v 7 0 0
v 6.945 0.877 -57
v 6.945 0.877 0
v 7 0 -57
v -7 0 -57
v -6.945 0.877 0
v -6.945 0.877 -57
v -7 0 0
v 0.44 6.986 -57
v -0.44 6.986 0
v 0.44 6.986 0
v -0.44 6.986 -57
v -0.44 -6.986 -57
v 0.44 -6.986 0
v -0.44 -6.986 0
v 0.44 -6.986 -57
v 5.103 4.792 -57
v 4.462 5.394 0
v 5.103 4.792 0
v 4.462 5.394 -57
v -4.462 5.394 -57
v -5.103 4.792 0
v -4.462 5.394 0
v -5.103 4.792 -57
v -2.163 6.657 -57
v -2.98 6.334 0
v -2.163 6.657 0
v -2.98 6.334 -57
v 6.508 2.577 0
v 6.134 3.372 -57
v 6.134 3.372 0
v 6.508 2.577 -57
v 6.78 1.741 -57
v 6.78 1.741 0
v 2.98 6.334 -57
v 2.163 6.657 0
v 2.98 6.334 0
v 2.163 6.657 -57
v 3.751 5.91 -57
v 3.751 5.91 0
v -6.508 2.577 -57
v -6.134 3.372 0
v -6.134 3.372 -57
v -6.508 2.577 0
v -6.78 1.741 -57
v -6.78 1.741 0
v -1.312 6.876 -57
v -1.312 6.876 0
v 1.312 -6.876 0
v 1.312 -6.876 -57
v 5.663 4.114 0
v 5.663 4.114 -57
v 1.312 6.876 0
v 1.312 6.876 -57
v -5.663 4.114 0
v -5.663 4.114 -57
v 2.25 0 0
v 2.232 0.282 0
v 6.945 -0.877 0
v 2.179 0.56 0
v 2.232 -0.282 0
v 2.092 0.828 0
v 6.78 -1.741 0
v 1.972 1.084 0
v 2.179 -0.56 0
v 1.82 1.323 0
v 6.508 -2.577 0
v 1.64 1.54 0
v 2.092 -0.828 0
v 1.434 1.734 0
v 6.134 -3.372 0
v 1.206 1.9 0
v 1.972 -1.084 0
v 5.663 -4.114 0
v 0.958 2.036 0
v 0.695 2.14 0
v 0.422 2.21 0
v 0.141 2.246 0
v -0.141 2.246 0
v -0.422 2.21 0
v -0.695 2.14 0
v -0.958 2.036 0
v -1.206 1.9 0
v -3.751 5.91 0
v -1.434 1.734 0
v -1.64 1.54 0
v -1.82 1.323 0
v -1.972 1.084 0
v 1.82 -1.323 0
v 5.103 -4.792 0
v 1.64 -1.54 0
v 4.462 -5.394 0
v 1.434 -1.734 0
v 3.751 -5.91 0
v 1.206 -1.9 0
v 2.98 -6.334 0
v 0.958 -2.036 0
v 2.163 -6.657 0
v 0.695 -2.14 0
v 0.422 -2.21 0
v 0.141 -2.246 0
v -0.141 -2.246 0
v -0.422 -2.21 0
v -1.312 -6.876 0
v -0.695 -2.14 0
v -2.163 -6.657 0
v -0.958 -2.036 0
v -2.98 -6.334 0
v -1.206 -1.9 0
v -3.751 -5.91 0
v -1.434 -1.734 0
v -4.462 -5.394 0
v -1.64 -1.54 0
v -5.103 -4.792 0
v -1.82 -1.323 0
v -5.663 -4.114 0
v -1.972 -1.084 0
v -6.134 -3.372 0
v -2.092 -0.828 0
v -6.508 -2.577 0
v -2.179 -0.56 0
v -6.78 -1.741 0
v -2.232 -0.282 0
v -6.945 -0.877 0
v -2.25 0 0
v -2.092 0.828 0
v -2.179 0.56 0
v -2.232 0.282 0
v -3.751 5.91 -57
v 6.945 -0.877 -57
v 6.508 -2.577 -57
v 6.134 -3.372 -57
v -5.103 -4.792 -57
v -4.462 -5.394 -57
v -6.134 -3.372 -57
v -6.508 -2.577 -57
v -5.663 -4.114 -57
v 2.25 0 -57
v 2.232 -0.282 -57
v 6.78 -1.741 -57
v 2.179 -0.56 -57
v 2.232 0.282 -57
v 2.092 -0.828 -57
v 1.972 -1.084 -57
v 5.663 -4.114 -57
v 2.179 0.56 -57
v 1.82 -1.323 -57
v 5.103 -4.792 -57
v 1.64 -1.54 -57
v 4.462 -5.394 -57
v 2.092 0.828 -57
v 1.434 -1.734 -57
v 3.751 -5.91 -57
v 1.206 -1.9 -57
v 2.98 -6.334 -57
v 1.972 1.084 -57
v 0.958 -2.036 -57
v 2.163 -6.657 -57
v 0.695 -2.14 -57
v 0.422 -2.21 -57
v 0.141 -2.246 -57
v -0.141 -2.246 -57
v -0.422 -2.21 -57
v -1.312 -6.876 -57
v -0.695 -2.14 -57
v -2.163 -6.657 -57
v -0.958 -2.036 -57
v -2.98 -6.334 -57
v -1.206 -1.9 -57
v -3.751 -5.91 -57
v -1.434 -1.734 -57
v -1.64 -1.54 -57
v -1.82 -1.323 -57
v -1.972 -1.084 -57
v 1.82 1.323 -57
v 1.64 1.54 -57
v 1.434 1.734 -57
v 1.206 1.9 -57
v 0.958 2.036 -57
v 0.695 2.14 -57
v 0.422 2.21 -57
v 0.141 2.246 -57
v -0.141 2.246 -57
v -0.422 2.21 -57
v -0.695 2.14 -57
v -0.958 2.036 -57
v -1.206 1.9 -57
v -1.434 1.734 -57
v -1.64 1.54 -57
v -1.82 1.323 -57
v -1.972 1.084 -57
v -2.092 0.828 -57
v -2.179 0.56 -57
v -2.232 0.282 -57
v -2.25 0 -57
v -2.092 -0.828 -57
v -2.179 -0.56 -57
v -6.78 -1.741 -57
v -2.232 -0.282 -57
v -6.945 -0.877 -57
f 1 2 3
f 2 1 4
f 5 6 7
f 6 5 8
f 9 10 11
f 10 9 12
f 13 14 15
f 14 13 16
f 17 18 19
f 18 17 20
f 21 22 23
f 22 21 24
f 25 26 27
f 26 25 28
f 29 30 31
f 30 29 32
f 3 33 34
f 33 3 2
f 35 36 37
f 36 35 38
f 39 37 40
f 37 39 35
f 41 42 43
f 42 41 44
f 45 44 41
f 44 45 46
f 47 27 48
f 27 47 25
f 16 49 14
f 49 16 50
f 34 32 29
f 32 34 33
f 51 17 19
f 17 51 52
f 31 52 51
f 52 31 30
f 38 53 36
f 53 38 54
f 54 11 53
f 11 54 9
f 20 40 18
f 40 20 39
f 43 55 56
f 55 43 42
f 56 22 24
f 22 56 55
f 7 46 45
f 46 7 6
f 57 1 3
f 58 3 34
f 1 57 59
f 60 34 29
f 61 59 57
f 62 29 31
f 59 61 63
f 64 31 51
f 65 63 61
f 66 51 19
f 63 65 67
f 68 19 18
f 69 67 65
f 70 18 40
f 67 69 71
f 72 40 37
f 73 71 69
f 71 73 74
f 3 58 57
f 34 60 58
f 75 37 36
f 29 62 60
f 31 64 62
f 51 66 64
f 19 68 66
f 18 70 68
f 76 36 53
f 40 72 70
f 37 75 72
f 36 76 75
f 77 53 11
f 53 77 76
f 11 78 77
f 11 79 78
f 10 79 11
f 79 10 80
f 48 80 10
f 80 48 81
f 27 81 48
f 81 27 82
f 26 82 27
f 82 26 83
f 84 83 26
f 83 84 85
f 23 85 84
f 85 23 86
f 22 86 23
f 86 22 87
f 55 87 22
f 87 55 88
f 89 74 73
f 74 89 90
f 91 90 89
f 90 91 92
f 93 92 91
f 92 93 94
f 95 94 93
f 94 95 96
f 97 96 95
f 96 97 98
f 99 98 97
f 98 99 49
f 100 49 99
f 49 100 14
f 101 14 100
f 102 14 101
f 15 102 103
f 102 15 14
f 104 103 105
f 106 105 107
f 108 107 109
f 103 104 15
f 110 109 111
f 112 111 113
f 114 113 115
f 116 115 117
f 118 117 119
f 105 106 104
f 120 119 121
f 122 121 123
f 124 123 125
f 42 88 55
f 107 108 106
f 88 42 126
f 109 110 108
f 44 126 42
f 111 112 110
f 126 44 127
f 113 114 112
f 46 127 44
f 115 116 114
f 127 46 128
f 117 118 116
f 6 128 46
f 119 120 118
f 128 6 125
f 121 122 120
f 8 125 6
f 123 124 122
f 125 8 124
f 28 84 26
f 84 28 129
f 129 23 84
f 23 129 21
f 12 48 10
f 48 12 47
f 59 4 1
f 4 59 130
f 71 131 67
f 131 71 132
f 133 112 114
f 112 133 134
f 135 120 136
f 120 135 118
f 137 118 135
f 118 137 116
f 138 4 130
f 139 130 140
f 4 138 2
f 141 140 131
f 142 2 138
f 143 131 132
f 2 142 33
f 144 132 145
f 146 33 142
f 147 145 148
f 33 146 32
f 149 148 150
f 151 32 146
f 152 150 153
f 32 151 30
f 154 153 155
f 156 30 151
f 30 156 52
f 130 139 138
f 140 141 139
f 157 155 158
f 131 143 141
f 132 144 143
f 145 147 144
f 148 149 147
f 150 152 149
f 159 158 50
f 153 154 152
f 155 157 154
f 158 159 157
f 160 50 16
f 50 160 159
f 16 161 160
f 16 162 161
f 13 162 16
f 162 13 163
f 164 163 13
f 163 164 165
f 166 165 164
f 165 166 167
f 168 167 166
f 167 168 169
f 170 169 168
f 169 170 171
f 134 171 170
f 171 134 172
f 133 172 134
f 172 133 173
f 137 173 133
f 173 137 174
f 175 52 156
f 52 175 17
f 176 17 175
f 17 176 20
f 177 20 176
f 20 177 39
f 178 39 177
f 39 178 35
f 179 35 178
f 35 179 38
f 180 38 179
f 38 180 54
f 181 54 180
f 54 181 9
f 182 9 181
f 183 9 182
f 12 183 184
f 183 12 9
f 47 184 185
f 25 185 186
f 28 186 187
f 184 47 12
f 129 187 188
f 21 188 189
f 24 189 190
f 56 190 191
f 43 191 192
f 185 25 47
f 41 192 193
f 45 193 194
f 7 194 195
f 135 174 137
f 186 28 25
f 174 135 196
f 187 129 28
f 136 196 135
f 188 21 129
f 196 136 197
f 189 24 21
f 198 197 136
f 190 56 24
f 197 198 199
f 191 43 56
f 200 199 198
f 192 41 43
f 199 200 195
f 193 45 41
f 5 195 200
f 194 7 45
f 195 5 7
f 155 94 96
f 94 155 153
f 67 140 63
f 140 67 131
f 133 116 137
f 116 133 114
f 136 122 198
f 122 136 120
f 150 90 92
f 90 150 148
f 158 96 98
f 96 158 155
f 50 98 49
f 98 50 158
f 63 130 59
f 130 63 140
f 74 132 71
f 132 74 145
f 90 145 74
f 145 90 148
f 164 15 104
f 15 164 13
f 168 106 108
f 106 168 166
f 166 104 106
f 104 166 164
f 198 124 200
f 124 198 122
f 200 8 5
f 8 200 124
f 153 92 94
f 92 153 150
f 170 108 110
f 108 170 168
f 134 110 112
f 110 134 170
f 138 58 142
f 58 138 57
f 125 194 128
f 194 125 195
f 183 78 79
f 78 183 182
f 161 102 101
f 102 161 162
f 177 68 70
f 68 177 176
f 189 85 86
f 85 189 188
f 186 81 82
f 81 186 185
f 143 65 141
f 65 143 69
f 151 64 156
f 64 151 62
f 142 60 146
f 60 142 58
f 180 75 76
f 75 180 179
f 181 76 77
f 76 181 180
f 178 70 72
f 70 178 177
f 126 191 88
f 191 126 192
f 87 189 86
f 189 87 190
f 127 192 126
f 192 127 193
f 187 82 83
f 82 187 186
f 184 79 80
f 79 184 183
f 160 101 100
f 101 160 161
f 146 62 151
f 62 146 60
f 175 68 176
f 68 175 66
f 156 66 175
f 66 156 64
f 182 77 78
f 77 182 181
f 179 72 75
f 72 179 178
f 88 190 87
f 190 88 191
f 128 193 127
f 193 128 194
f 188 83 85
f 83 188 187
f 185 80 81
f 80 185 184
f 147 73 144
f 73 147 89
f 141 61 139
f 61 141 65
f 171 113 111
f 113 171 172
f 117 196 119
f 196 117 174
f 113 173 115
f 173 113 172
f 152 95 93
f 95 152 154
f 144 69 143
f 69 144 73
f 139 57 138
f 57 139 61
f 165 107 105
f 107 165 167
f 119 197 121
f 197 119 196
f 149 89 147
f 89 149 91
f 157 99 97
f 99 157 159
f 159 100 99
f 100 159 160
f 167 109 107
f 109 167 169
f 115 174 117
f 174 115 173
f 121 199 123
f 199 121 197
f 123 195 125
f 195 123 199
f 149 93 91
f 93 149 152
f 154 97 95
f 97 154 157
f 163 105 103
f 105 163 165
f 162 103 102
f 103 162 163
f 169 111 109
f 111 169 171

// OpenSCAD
$fn = 50;


difference() {
	union() {
		translate(v = [0, 0, -57.0000000000]) {
			cylinder(h = 57, r = 7.0000000000);
		}
		cylinder(h = 0, r = 13.0000000000);
	}
	union() {
		#translate(v = [0, 0, -57]) {
			cylinder(h = 57, r = 2.2500000000);
		}
	}
}
